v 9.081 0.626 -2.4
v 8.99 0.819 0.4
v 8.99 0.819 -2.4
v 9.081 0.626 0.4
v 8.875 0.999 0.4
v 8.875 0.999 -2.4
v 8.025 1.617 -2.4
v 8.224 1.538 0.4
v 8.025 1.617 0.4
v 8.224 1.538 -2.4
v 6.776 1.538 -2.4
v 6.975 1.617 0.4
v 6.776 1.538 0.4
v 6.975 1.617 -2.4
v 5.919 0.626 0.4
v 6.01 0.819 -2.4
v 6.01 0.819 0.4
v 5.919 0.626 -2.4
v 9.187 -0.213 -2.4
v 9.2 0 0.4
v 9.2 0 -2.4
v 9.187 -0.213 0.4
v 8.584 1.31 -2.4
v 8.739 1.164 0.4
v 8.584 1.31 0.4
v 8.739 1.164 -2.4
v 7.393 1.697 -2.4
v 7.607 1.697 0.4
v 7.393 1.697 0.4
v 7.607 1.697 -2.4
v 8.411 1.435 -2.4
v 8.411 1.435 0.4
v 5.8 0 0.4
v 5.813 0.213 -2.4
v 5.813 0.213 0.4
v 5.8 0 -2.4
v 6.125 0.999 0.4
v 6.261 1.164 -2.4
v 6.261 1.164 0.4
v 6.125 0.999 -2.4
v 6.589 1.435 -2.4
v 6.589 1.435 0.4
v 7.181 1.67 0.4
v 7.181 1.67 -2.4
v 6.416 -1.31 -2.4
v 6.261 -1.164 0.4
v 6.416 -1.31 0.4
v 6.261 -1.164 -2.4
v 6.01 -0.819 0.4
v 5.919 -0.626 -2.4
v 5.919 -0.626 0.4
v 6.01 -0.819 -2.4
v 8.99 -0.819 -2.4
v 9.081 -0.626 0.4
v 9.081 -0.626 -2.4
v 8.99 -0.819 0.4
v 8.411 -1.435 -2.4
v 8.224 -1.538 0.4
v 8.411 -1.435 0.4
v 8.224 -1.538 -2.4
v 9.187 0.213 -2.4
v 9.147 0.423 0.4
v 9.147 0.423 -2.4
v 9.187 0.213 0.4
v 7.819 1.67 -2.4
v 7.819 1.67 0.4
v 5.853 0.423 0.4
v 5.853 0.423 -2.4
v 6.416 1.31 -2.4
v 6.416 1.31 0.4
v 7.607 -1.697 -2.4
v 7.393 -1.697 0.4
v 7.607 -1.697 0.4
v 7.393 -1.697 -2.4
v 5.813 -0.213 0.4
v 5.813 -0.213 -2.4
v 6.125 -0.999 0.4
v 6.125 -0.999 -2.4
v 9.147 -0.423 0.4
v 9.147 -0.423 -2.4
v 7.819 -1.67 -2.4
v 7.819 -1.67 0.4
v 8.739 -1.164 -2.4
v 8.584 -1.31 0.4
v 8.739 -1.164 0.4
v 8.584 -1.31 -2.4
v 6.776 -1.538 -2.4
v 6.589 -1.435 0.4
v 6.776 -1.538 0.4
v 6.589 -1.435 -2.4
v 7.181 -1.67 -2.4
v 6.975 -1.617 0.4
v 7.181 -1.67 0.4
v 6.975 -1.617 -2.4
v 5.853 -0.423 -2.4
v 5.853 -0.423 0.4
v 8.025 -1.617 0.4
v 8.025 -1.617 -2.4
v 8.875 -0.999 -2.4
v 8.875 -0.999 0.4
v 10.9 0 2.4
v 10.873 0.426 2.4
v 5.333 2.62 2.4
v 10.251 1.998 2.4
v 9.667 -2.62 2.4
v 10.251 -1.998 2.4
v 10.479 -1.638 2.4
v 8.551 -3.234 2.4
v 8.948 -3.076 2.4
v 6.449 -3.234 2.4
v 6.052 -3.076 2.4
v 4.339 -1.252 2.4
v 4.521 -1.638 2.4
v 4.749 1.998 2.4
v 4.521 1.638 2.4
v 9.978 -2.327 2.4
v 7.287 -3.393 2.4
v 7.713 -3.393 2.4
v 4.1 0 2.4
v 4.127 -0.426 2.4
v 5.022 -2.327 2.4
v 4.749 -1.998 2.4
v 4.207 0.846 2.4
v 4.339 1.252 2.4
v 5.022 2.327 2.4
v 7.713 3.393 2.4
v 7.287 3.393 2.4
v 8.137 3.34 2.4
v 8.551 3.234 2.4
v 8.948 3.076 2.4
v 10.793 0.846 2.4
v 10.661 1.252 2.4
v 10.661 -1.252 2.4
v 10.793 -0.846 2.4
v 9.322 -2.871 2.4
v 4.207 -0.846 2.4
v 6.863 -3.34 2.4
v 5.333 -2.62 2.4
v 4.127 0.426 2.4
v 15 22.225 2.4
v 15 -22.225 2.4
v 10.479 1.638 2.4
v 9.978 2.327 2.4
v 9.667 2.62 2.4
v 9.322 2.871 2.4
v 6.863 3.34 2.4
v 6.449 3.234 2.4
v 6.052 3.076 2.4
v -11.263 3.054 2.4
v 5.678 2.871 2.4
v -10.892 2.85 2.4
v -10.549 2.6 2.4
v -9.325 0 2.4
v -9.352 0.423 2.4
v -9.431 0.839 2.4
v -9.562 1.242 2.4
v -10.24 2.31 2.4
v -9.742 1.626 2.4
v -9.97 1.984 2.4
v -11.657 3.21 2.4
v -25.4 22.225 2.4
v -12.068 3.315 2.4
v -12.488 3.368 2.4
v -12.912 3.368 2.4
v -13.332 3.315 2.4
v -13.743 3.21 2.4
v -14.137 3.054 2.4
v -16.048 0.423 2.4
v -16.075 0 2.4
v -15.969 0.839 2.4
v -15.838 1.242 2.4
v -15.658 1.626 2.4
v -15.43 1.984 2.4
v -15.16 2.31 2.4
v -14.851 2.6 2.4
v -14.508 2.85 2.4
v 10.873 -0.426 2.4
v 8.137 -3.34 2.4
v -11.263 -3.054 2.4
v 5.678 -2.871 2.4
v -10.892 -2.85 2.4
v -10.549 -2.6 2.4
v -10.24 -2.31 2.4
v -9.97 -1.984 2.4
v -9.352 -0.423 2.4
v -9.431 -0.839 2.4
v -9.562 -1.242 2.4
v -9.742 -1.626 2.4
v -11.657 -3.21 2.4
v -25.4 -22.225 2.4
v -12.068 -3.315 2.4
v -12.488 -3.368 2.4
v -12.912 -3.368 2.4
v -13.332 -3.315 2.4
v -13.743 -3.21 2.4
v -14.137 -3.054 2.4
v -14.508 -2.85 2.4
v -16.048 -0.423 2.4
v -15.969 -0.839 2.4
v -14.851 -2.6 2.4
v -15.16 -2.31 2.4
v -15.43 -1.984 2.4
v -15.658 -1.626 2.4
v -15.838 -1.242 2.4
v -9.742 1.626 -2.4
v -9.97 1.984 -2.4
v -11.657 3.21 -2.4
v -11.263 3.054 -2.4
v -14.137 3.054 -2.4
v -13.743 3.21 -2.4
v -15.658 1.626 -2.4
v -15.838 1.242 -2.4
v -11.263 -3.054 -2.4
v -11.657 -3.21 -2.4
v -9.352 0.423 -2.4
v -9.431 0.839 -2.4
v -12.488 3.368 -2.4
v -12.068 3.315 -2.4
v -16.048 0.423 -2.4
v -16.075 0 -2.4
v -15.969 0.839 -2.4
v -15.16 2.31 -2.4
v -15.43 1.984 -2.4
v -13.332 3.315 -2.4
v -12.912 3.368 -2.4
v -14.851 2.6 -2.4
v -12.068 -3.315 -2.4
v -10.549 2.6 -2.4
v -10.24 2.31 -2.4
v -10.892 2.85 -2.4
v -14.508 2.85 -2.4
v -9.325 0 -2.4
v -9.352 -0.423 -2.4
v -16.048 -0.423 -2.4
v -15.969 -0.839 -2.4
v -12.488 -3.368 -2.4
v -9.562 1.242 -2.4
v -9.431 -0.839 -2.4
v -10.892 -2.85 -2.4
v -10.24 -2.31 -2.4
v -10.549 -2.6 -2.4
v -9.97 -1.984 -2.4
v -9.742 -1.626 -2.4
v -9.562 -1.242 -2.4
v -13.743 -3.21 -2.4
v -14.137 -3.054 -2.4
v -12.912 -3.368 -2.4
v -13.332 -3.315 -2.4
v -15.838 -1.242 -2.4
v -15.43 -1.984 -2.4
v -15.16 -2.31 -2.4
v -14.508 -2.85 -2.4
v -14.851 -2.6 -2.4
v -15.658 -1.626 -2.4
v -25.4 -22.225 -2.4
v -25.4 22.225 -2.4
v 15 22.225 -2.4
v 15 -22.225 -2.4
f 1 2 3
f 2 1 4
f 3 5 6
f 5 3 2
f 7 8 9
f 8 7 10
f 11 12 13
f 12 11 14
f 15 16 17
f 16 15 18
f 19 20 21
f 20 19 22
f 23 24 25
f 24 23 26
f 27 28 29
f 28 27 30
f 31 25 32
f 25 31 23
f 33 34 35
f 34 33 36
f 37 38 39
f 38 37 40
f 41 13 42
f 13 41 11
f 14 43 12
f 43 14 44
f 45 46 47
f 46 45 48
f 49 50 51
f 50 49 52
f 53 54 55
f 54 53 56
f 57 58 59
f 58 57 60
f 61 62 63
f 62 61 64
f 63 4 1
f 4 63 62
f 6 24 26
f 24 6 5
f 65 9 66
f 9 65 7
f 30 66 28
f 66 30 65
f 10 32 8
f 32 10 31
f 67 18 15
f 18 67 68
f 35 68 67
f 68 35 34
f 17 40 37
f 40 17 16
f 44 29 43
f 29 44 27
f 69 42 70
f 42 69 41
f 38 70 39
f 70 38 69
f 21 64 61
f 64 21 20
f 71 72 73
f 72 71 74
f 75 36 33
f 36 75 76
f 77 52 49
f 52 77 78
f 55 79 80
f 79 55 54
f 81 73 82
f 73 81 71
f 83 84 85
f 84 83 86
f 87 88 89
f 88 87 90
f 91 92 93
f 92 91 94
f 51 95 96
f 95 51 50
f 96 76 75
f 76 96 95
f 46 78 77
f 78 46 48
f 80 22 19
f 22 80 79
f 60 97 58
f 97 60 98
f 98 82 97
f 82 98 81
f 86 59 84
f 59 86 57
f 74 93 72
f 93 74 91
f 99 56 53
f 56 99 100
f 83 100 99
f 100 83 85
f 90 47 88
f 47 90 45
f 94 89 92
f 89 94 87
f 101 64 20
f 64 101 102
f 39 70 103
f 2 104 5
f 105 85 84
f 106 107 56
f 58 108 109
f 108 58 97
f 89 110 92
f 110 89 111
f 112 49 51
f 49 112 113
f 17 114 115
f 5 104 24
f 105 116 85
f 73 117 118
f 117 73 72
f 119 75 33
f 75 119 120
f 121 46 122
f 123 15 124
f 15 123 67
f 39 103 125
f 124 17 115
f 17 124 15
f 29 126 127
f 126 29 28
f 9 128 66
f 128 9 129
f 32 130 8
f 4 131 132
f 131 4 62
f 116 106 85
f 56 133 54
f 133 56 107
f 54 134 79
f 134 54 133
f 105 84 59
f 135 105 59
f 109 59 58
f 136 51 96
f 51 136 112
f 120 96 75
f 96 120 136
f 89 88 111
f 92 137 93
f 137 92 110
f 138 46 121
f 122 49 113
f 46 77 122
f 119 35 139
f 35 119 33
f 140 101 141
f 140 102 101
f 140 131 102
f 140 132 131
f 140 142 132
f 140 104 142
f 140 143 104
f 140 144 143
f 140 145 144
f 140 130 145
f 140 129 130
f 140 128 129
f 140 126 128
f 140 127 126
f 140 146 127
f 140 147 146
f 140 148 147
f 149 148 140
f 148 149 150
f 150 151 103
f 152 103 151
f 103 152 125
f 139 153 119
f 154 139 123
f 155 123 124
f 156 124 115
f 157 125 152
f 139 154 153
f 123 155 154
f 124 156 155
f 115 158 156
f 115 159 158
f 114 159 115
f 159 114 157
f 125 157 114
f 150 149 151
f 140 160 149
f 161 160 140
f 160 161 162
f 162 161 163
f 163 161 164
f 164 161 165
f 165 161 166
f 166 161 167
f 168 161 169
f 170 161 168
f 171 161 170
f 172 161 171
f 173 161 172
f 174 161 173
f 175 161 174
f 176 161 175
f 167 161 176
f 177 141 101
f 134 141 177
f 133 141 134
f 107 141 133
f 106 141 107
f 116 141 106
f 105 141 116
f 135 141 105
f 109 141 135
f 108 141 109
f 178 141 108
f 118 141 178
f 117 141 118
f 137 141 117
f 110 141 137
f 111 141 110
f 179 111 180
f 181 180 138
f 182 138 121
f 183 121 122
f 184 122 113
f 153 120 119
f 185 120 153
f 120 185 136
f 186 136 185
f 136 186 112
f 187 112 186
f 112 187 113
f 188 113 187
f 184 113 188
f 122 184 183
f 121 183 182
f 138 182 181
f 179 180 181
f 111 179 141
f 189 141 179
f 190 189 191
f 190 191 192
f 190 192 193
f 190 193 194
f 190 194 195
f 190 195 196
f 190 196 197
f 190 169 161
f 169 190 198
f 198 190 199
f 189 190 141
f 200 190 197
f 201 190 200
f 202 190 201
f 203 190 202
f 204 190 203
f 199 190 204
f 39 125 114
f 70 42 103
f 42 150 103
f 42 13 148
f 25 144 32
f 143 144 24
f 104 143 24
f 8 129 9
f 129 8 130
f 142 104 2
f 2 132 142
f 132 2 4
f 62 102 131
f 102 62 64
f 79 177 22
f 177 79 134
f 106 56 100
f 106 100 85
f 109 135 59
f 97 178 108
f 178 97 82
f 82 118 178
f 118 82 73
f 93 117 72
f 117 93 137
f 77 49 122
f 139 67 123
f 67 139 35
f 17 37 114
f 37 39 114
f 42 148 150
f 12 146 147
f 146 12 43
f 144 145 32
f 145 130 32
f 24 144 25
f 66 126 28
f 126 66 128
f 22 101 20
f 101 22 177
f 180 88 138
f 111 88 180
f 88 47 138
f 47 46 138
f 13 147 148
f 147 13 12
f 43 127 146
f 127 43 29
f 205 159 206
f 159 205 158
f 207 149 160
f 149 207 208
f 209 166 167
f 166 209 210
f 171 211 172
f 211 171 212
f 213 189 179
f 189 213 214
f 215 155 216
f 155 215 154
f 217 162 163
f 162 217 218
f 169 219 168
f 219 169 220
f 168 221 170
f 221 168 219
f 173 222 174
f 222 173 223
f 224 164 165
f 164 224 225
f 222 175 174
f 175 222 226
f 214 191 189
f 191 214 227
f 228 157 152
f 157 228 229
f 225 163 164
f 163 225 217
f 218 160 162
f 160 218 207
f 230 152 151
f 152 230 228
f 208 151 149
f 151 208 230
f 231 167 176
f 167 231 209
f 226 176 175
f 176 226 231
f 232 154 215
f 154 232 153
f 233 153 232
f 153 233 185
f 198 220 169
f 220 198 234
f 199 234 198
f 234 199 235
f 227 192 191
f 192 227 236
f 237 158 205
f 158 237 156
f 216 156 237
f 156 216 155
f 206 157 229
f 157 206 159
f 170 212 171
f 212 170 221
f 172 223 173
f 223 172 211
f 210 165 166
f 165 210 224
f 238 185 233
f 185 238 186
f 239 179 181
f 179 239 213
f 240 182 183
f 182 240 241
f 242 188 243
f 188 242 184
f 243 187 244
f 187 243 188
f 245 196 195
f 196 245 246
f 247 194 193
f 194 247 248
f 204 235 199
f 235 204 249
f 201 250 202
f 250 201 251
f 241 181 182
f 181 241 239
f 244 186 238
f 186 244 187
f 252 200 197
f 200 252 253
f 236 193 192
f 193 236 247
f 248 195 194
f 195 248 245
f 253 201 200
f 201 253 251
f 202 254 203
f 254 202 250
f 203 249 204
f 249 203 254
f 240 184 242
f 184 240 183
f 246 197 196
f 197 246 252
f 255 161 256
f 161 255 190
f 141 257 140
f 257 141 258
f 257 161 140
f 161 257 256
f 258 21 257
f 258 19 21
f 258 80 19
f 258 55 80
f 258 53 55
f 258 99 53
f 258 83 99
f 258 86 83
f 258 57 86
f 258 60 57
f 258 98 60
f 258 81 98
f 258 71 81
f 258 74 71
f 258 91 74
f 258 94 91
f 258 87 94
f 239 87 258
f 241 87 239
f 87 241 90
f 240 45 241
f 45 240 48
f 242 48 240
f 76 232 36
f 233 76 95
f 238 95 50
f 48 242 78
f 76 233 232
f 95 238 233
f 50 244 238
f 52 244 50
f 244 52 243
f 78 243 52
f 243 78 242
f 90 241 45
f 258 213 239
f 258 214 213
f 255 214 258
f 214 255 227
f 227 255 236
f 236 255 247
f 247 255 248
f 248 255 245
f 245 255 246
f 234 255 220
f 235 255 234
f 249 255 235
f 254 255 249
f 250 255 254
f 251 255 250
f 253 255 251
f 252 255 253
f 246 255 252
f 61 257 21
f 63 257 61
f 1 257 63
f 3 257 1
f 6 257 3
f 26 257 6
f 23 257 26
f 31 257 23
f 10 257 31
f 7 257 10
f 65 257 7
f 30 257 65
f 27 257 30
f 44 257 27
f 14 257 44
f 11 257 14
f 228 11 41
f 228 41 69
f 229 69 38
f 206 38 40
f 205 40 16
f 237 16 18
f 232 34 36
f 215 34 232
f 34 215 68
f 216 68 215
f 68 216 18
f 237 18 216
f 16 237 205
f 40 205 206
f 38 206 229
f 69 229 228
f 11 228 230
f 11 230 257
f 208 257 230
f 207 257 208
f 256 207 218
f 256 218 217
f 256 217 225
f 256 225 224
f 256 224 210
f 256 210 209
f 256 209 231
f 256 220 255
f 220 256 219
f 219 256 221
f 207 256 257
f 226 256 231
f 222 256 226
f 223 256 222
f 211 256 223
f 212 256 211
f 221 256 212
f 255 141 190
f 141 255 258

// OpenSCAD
$fn = 50;
 difference() {
     translate([-5.199999999999999, 0.0, 0.0]) {
         cube([40.400000000000006, 44.45, 4.8], center=true);
    }

     union() {
         translate([-12.700000000000001, 0.0, 0.0]) {
             cylinder(r=3.375, h=5.8, center=true);
        }

         union() {
             translate([7.5, 0.0, 0.0]) {
                 cylinder(r=1.7, h=5.8, center=true);
            }

             translate([7.5, 0.0, 1.4]) {
                 cylinder(r1=1.7, r2=3.4, h=2.0, center=true);
            }

        }

    }

}
